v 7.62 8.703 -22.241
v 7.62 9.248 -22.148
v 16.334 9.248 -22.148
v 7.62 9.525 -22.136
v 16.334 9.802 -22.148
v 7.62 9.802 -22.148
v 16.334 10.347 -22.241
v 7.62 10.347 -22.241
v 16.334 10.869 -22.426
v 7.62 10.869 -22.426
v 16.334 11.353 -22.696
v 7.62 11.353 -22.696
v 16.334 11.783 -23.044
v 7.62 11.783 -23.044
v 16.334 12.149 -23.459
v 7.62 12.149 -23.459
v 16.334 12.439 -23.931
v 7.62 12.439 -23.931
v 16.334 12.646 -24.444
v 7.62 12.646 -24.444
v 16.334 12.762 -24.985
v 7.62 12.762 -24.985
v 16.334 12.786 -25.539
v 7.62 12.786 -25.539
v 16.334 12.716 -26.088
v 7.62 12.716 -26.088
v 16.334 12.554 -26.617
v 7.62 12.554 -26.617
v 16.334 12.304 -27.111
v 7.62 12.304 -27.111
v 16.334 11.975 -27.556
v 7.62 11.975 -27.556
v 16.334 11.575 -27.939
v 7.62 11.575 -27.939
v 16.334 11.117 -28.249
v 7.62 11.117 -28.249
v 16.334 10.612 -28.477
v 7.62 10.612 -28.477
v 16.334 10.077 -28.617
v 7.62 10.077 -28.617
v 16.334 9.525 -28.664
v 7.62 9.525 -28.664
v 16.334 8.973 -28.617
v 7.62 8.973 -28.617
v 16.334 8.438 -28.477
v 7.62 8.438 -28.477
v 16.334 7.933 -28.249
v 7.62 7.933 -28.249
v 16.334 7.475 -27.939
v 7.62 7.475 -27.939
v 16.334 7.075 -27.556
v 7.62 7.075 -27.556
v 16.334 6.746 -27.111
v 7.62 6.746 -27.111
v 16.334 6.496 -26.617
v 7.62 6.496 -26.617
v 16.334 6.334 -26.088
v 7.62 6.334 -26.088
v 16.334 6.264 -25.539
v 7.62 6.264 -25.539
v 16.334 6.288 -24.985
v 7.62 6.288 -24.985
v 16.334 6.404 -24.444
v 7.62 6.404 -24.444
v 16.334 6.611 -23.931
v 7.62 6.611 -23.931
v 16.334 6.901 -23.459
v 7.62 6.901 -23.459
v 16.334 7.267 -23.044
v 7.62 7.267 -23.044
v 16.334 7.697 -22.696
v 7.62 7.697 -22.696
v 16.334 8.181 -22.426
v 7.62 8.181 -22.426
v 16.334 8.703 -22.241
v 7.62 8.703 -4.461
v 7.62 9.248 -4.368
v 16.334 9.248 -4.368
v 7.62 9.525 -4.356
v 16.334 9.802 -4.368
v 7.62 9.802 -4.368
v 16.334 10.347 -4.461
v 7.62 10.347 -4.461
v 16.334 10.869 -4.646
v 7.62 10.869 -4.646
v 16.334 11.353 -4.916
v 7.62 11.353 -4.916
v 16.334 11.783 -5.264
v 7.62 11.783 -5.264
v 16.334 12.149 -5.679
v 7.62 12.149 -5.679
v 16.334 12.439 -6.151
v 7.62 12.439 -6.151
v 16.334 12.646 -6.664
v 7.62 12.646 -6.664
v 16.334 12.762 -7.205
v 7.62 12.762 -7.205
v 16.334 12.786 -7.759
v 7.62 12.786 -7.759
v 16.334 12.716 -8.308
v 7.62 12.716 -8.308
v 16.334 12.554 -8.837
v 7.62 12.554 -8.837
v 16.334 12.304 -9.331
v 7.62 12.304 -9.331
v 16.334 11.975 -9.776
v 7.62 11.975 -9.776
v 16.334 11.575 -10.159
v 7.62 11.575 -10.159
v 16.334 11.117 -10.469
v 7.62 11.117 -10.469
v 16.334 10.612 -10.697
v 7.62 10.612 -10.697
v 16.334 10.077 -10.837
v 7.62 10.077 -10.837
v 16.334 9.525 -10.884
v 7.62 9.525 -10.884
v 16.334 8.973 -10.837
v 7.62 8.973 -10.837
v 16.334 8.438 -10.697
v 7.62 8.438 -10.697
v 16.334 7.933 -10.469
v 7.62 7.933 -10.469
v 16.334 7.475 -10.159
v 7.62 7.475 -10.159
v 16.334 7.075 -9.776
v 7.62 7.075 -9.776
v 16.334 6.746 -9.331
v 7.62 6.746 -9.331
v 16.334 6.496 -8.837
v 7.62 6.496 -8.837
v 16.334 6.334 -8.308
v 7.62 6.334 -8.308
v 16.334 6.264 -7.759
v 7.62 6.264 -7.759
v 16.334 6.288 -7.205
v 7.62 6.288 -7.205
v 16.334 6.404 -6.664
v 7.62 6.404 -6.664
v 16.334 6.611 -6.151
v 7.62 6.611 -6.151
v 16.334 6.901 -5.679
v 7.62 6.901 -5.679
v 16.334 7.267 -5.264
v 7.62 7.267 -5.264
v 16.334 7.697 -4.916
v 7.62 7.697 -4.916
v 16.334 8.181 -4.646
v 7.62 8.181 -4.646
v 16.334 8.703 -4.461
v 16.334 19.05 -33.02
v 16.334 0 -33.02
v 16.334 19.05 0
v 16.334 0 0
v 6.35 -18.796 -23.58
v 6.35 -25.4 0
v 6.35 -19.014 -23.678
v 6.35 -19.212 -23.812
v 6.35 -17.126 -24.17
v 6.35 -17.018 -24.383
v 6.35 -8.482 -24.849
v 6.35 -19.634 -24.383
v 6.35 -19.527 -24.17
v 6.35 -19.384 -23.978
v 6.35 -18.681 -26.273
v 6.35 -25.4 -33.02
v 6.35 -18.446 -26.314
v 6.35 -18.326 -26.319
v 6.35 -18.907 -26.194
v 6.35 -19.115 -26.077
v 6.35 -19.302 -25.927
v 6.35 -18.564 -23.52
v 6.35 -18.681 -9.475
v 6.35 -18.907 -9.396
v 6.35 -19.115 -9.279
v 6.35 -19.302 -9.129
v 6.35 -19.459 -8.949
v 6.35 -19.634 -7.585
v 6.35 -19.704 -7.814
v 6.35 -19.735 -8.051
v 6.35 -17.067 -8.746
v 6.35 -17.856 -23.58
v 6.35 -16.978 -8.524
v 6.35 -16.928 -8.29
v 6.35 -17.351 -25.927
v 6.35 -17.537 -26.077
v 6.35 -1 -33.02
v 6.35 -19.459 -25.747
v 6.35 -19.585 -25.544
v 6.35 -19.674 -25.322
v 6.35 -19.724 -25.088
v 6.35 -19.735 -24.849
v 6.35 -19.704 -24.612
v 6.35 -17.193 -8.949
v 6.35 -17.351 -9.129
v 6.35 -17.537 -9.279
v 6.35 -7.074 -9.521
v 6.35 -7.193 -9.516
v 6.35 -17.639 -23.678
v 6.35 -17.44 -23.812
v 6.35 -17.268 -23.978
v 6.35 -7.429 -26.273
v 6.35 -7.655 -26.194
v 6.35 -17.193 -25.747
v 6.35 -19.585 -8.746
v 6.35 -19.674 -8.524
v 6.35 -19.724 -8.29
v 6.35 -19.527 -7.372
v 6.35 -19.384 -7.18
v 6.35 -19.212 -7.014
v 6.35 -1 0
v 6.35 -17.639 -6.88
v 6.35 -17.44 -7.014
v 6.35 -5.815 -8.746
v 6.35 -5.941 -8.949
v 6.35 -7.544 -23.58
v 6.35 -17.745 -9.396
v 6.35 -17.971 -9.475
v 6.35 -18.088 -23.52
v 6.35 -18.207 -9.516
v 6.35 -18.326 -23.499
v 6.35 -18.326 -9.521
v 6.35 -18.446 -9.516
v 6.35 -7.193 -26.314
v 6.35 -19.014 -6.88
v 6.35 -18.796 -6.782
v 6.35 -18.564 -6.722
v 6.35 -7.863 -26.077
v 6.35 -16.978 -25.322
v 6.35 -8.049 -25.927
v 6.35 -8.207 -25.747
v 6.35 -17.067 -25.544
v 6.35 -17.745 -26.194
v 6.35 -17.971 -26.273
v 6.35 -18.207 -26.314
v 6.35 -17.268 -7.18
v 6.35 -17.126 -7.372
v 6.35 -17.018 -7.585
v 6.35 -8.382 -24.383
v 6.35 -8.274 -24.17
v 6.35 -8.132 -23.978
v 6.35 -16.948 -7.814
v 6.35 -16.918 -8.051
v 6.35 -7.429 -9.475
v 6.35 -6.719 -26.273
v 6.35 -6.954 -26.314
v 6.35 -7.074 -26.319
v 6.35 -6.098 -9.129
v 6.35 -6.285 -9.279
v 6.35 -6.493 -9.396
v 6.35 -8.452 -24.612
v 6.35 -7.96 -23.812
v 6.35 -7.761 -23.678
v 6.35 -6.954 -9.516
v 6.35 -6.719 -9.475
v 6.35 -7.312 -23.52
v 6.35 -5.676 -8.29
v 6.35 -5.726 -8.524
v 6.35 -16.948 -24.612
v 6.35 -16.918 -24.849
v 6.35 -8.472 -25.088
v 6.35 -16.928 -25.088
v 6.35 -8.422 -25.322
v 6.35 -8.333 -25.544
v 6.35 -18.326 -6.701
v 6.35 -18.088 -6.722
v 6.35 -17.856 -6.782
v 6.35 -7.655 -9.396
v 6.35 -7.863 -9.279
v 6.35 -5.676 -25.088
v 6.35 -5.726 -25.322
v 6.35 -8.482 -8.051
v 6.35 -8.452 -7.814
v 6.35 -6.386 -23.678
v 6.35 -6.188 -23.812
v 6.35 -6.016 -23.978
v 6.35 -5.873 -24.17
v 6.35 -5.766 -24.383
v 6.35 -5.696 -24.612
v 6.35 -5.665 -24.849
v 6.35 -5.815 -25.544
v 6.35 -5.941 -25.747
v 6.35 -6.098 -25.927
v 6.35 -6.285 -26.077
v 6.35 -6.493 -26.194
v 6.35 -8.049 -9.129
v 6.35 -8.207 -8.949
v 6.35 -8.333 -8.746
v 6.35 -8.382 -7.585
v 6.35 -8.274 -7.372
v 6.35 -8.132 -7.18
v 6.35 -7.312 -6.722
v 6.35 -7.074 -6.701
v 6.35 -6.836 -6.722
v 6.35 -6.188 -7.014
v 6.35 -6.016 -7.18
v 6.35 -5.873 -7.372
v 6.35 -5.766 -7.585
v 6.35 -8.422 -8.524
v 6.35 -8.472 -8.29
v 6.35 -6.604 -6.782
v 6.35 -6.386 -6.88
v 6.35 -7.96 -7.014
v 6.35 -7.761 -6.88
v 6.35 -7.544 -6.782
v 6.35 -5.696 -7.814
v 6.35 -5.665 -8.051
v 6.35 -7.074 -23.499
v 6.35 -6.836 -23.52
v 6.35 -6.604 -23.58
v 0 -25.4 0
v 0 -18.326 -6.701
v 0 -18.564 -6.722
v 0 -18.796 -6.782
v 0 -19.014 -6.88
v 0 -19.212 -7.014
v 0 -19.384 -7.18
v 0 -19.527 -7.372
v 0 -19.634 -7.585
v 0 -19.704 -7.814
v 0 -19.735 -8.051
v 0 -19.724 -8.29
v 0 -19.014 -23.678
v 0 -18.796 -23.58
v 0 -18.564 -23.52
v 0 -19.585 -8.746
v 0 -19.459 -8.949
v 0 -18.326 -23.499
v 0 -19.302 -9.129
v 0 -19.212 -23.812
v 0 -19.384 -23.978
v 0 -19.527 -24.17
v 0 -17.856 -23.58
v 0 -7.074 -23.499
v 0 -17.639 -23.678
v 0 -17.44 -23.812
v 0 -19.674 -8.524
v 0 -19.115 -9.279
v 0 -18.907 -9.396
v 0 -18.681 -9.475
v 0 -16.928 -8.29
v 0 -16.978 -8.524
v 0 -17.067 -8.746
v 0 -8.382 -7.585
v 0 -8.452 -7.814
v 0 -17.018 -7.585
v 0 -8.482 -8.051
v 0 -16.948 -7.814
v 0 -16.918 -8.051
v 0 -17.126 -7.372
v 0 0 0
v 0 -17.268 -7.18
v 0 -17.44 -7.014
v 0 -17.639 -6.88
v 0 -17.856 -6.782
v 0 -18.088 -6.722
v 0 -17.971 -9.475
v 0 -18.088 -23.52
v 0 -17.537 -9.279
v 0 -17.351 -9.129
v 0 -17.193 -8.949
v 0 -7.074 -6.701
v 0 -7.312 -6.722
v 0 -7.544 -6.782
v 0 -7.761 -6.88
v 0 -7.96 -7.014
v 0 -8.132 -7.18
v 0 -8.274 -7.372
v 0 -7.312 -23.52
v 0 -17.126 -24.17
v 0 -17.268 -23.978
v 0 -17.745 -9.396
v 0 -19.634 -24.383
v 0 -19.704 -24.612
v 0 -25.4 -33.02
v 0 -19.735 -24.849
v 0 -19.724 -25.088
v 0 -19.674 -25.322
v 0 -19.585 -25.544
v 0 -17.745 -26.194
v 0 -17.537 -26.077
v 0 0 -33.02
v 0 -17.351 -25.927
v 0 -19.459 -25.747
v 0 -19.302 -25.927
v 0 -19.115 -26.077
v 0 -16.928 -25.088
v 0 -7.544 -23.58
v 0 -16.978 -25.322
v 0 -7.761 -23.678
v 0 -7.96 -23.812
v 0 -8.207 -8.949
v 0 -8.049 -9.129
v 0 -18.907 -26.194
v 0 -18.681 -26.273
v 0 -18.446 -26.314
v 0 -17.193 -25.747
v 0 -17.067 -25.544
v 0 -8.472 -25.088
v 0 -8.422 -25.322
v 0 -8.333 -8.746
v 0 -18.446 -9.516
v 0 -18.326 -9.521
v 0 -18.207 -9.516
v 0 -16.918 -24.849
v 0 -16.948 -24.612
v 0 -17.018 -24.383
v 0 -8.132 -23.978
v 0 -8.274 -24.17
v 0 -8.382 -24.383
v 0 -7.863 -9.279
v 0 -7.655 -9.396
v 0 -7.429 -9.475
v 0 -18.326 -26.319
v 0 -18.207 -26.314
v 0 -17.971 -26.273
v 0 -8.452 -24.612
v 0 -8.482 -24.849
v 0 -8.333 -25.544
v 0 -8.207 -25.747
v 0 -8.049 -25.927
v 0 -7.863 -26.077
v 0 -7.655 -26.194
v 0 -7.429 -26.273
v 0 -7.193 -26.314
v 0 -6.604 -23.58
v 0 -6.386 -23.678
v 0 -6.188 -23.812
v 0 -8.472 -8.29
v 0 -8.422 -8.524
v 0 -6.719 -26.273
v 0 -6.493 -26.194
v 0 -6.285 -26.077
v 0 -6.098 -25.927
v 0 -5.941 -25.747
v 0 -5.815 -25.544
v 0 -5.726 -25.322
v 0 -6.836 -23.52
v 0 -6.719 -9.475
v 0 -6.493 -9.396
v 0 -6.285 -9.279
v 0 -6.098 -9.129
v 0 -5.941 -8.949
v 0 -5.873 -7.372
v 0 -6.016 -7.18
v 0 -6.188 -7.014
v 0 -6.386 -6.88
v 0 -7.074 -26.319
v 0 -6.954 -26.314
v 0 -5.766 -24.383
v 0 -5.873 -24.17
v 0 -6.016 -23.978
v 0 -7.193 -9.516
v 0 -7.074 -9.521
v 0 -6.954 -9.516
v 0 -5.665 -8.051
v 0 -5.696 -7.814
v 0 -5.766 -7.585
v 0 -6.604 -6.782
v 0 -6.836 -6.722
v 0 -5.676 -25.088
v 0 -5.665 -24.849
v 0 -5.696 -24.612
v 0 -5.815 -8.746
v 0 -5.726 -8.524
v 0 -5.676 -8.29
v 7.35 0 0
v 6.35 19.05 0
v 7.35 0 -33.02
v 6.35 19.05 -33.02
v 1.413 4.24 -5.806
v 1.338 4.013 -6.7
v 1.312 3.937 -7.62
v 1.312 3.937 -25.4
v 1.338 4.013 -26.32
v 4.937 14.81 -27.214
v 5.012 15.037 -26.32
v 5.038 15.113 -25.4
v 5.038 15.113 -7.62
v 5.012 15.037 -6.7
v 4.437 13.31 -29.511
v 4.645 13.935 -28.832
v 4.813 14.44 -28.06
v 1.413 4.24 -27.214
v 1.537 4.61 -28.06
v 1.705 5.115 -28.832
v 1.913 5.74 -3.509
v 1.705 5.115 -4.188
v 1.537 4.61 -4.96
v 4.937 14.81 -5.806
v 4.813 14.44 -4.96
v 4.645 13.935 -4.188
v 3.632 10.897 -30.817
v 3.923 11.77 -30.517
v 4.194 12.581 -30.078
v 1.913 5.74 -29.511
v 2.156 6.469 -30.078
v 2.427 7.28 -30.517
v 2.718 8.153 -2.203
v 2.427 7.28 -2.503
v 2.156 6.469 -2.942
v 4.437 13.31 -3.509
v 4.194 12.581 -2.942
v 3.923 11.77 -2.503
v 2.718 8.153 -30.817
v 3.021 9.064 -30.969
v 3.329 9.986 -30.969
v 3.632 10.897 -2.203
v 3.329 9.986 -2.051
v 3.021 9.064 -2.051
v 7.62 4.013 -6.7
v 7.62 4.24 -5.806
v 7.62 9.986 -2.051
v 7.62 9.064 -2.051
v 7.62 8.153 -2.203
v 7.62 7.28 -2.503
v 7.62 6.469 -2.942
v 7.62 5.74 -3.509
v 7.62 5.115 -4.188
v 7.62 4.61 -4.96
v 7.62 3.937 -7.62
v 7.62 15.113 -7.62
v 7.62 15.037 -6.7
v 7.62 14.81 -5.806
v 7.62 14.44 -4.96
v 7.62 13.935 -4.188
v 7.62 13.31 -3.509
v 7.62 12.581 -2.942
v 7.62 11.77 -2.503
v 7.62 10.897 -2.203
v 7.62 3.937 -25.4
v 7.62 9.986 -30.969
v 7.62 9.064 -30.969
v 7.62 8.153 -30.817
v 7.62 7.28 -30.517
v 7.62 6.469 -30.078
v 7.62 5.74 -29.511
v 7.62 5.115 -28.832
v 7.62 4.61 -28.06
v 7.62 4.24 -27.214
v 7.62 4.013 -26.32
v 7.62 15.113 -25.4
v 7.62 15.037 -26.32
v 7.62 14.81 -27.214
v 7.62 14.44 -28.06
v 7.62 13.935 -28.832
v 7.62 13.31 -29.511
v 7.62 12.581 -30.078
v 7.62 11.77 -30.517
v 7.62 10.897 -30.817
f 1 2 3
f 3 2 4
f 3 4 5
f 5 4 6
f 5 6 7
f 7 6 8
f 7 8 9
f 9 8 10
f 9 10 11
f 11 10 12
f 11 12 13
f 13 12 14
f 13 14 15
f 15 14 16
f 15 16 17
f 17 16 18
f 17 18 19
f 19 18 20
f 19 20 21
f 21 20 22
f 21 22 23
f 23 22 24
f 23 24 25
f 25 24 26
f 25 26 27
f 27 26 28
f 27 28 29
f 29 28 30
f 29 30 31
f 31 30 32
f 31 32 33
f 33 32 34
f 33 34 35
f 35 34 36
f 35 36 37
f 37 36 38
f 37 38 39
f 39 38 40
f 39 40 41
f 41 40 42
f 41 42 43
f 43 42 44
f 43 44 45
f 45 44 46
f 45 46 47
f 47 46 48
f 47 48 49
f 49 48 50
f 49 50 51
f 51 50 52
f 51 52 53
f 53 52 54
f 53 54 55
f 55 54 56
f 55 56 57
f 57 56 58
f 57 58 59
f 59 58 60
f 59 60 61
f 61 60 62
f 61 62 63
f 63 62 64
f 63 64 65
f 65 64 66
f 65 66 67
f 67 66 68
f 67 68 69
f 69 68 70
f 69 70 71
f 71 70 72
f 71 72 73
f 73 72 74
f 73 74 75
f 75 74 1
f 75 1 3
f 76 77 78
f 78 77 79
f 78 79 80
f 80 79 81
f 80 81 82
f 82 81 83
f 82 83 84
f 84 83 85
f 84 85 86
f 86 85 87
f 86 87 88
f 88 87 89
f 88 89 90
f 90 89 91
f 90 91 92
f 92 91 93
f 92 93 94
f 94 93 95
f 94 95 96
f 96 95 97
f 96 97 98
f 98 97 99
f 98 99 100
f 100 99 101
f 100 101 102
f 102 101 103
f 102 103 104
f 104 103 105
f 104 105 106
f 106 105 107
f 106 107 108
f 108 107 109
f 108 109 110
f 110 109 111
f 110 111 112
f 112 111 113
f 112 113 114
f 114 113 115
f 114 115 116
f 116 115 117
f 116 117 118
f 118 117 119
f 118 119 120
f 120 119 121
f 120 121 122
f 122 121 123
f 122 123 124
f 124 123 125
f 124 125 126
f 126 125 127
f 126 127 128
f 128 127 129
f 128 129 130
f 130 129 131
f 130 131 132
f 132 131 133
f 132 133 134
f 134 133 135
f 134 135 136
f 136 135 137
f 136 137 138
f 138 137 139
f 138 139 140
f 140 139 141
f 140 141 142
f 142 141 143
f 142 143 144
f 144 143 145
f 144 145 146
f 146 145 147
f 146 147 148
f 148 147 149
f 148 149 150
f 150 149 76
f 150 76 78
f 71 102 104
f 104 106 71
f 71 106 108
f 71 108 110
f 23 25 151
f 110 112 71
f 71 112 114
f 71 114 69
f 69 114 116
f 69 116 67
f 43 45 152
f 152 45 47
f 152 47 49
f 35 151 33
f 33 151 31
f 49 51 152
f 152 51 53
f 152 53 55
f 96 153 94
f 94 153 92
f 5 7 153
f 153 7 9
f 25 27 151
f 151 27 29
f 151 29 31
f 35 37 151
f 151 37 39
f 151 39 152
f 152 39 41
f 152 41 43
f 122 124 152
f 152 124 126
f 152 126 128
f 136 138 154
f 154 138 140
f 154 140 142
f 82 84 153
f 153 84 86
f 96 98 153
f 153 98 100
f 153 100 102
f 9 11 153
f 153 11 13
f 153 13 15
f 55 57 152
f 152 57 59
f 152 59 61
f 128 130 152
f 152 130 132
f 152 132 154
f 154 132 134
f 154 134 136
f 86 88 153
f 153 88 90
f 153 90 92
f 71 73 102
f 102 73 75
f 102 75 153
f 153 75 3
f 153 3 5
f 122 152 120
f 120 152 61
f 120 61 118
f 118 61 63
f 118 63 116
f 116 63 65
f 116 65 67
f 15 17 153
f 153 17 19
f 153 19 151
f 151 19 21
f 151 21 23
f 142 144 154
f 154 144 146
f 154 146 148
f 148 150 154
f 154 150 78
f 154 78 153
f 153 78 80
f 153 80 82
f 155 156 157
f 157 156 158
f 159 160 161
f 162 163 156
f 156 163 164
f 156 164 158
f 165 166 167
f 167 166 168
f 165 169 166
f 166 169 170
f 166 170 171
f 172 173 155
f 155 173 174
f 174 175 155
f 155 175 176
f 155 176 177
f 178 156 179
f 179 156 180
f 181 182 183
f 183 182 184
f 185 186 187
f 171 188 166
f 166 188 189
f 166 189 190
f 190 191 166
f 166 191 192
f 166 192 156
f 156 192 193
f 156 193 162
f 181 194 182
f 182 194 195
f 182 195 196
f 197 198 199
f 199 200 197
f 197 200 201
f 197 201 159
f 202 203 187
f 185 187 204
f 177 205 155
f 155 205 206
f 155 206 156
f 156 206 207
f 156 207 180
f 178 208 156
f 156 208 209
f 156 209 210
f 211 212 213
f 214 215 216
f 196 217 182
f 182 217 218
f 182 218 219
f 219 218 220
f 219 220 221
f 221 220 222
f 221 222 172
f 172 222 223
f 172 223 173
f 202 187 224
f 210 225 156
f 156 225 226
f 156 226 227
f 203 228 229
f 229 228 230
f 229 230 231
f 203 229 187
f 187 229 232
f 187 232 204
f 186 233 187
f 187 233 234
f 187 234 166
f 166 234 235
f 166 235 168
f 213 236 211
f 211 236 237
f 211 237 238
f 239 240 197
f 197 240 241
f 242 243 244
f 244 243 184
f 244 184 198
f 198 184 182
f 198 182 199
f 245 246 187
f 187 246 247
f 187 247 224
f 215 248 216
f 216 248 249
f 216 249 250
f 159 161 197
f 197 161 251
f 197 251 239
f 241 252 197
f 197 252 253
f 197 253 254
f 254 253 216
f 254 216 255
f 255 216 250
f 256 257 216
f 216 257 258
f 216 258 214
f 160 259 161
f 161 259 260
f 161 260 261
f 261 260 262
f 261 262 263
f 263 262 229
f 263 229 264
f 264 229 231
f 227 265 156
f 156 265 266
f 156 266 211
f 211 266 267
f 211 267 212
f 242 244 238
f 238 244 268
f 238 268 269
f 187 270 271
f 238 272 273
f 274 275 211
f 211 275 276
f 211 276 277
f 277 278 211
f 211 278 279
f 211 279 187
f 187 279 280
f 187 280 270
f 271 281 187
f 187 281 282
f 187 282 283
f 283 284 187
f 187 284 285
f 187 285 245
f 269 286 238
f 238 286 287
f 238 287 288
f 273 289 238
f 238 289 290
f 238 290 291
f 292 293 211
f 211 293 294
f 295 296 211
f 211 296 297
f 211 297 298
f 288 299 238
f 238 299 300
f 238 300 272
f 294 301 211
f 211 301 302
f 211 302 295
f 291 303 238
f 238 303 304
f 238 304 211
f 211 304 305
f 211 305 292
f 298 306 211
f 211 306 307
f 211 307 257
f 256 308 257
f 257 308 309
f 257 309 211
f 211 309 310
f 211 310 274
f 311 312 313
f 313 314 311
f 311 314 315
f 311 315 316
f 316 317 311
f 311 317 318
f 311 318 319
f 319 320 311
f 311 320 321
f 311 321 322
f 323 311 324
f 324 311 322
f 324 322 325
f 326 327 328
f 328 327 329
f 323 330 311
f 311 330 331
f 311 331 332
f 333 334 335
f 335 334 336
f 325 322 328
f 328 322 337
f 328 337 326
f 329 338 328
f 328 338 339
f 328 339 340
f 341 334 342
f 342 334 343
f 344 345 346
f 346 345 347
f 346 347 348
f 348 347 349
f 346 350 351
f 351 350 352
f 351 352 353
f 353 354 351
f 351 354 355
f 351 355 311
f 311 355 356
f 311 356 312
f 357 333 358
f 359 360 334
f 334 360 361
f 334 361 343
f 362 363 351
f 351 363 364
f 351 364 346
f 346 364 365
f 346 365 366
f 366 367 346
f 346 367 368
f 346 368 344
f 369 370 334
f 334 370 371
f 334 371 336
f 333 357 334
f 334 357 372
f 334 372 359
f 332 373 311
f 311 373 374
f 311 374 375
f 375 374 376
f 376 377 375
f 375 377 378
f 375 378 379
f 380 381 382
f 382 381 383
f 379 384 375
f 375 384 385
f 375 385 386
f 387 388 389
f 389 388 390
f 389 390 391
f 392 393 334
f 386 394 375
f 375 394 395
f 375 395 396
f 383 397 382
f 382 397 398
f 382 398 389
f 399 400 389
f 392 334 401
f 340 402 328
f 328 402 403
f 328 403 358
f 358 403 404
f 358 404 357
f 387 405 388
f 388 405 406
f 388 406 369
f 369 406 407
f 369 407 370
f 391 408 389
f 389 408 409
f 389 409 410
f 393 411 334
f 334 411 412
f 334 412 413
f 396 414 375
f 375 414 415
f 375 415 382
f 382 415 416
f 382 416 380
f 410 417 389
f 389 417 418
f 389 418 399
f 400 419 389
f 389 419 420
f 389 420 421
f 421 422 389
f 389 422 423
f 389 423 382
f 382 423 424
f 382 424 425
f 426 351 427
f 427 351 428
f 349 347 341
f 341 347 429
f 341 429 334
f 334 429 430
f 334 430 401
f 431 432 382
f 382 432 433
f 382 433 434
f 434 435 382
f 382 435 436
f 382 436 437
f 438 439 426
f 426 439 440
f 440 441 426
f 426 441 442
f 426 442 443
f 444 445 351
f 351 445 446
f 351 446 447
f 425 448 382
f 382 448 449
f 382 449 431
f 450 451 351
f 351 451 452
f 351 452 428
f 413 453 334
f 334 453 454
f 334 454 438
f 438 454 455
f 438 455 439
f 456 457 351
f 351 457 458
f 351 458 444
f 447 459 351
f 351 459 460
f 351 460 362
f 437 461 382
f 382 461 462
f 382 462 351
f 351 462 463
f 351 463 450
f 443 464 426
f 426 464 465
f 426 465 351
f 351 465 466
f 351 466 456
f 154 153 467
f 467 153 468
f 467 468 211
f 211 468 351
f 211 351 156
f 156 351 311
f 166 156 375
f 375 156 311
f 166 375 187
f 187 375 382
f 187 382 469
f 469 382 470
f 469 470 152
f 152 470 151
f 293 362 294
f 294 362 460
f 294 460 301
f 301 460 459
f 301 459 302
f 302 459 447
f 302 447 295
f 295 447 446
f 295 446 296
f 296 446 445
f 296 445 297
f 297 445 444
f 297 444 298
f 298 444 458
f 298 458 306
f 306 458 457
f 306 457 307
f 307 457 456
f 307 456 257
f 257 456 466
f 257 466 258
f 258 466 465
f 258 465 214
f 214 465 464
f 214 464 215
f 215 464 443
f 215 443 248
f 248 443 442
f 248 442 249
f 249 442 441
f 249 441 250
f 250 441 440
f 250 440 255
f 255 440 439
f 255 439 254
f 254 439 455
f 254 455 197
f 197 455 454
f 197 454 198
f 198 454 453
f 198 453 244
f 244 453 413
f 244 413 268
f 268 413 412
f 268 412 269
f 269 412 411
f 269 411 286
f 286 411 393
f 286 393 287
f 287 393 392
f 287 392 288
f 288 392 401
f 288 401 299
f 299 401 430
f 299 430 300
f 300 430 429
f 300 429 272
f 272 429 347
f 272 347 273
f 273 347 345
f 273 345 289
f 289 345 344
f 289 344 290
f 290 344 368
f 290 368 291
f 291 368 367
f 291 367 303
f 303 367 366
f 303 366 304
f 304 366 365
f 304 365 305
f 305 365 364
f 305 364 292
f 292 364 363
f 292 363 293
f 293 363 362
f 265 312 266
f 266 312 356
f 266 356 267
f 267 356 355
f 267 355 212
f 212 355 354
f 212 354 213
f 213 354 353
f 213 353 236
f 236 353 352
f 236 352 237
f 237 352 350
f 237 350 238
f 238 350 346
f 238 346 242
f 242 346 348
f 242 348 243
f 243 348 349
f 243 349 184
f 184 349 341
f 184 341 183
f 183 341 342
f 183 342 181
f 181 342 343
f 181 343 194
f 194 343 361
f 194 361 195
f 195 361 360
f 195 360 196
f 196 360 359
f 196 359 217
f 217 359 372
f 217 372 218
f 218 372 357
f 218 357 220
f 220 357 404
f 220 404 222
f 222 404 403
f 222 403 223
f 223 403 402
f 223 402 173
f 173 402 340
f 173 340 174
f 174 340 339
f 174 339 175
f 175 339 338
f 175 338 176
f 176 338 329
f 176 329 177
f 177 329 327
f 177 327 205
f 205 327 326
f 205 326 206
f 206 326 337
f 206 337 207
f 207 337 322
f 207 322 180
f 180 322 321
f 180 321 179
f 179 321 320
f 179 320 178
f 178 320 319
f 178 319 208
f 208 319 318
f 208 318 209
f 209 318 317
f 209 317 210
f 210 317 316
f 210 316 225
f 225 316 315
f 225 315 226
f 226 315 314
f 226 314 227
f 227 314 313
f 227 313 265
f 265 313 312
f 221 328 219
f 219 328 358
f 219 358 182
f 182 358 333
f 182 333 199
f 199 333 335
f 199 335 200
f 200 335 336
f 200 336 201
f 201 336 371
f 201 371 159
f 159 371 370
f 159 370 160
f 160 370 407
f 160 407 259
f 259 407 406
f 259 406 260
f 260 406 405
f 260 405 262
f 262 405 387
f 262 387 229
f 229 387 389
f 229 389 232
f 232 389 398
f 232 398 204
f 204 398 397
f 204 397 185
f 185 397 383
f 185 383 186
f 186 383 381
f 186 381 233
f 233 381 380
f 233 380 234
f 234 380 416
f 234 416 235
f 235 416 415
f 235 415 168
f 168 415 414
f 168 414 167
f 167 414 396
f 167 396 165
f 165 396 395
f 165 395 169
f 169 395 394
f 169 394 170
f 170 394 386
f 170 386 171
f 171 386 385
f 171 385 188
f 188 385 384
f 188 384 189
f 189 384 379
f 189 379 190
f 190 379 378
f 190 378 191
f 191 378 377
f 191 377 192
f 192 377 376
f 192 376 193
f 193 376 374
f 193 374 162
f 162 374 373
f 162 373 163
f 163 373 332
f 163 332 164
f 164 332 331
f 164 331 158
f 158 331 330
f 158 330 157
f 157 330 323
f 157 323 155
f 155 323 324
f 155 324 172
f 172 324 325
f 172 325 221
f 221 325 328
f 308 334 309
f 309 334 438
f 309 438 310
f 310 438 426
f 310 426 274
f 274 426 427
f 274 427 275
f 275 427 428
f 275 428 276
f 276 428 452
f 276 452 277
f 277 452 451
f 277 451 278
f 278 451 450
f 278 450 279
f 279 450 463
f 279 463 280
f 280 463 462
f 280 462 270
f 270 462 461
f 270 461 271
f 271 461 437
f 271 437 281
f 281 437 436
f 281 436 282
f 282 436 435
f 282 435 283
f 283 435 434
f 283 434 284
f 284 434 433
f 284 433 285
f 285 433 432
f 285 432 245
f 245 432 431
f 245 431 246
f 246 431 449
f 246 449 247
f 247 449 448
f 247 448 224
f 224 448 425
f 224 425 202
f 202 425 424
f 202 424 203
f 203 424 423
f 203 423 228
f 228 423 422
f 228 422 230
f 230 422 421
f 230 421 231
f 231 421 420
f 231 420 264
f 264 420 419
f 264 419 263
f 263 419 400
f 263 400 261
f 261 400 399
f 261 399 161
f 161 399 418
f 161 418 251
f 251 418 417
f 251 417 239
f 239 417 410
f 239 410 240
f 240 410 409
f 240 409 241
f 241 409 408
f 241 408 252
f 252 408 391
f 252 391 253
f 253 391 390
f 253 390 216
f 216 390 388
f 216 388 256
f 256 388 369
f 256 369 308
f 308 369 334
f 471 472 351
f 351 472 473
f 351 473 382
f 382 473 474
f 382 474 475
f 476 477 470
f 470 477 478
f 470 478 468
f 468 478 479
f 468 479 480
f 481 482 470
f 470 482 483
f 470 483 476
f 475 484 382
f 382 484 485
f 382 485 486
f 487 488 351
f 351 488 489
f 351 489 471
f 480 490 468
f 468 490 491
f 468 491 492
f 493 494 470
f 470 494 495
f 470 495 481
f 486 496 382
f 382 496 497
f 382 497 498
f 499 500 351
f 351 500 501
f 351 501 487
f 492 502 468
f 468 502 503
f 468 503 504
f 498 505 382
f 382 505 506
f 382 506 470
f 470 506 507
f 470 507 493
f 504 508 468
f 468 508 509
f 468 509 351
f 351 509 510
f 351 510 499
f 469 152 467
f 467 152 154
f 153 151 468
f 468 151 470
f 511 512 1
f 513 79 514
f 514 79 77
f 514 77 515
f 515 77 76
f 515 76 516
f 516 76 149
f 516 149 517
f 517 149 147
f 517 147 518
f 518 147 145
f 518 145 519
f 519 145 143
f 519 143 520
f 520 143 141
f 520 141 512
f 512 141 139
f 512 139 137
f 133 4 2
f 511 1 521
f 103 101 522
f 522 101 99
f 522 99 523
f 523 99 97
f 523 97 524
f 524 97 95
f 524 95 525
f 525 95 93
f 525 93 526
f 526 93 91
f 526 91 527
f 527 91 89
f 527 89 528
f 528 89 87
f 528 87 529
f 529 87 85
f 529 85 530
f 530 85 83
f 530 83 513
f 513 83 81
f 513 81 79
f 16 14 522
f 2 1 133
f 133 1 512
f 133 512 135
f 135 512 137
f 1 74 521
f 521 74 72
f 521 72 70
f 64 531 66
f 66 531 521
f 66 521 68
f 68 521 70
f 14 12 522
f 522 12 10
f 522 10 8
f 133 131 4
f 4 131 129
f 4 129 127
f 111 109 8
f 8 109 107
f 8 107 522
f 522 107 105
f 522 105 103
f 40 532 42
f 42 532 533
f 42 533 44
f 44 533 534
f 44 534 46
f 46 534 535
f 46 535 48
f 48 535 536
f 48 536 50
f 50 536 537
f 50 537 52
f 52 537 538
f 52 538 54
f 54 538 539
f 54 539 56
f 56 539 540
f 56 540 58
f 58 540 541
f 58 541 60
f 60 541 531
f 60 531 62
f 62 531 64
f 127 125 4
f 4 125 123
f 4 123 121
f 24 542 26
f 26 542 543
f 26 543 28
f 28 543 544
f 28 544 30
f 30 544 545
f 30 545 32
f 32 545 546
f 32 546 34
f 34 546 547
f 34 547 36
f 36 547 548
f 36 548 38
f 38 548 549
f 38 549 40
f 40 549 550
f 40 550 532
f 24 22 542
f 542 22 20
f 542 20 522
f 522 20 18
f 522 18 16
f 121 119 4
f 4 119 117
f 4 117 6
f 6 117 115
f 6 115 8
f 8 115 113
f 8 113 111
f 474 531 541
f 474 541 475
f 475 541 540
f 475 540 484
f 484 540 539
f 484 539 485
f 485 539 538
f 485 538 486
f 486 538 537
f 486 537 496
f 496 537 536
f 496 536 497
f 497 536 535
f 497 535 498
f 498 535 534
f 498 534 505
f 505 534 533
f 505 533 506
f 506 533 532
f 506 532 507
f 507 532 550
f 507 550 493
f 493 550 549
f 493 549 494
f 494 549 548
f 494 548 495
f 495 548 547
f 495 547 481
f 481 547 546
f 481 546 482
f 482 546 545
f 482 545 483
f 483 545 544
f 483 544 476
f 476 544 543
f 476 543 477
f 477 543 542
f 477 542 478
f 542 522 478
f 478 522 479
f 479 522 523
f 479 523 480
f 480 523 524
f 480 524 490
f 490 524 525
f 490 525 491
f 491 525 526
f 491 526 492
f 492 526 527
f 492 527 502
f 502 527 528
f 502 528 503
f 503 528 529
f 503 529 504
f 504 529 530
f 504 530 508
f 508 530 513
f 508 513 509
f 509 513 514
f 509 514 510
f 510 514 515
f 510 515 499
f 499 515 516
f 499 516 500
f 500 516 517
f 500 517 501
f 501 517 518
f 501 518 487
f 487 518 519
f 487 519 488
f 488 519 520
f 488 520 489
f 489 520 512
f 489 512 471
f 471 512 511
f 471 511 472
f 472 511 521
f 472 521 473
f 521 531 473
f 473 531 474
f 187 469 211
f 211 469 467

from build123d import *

# Parameters (mm, degrees)
SKETCH1_W                = 33.02
SKETCH1_H                = 25.4
SKETCH1_R                = 1.4097
BOSS_EXTRUDE1_DEPTH      = 6.35
SKETCH2_W                = 33.02
SKETCH2_H                = 19.05
BOSS_EXTRUDE2_DEPTH      = 9.983600048
BOSS_EXTRUDE3_DEPTH      = 33.02
F_0_257_DIAMETER_HOLE1_D = 6.5278
CUT_EXTRUDE1_DEPTH       = 7.62
CHAMFER1_SIZE            = 1


with BuildPart() as part:
    # Sketch1 → Boss-Extrude1 (new body)
    with BuildSketch(Plane(origin=(0, 0, 0), x_dir=(0, 0, -1), z_dir=(1, 0, 0))):
        with Locations((16.51, -12.7)):
            Rectangle(SKETCH1_W, SKETCH1_H)
        with Locations((8.111016524, -7.0739)):
            Circle(SKETCH1_R, mode=Mode.SUBTRACT)
        with Locations((8.111016524, -18.3261)):
            Circle(SKETCH1_R, mode=Mode.SUBTRACT)
        with Locations((24.908983476, -18.3261)):
            Circle(SKETCH1_R, mode=Mode.SUBTRACT)
        with Locations((24.908983476, -7.0739)):
            Circle(SKETCH1_R, mode=Mode.SUBTRACT)
    extrude(amount=BOSS_EXTRUDE1_DEPTH)



with BuildPart() as body_2:
    # Sketch2 → Boss-Extrude2 (new body)
    with BuildSketch(Plane(origin=(6.35, 0, 0), x_dir=(0, 0, -1), z_dir=(1, 0, 0))):
        with Locations((16.51, 9.525)):
            Rectangle(SKETCH2_W, SKETCH2_H)
    extrude(amount=BOSS_EXTRUDE2_DEPTH)


with BuildPart() as part_1:
    add(part.part)

    add(body_2.part)  # Boss-Extrude3 merges body 2
    # Sketch3 → Boss-Extrude3 (add)
    with BuildSketch(Plane.XY):
        Polygon((6.35, 19.05), (0, 0), (6.35, 0), align=None)
    extrude(amount=-BOSS_EXTRUDE3_DEPTH)

    # F (0.257) Diameter Hole1 (through all)
    with Locations(Plane(origin=(16.333600048, 0, 0), x_dir=(0, 0, -1), z_dir=(1, 0, 0))):
        with Locations((7.62, 9.525), (25.4, 9.525)):
            Hole(F_0_257_DIAMETER_HOLE1_D / 2)

    # Sketch11 → Cut-Extrude1 (cut)
    with BuildSketch(Plane.ZY):
        with BuildLine():
            Line((-25.4, 15.113), (-7.62, 15.113))
            ThreePointArc((-7.62, 15.113), (-2.032, 9.525), (-7.62, 3.937))
            Line((-7.62, 3.937), (-25.4, 3.937))
            ThreePointArc((-25.4, 3.937), (-30.988, 9.525), (-25.4, 15.113))
        make_face()
    extrude(amount=-CUT_EXTRUDE1_DEPTH, mode=Mode.SUBTRACT)

    # Chamfer1
    chamfer1_edges = [part_1.edges().sort_by_distance(p)[0] for p in [
        (6.35, 0, -16.51),
    ]]
    chamfer(chamfer1_edges, length=CHAMFER1_SIZE)


solid = part_1.part
